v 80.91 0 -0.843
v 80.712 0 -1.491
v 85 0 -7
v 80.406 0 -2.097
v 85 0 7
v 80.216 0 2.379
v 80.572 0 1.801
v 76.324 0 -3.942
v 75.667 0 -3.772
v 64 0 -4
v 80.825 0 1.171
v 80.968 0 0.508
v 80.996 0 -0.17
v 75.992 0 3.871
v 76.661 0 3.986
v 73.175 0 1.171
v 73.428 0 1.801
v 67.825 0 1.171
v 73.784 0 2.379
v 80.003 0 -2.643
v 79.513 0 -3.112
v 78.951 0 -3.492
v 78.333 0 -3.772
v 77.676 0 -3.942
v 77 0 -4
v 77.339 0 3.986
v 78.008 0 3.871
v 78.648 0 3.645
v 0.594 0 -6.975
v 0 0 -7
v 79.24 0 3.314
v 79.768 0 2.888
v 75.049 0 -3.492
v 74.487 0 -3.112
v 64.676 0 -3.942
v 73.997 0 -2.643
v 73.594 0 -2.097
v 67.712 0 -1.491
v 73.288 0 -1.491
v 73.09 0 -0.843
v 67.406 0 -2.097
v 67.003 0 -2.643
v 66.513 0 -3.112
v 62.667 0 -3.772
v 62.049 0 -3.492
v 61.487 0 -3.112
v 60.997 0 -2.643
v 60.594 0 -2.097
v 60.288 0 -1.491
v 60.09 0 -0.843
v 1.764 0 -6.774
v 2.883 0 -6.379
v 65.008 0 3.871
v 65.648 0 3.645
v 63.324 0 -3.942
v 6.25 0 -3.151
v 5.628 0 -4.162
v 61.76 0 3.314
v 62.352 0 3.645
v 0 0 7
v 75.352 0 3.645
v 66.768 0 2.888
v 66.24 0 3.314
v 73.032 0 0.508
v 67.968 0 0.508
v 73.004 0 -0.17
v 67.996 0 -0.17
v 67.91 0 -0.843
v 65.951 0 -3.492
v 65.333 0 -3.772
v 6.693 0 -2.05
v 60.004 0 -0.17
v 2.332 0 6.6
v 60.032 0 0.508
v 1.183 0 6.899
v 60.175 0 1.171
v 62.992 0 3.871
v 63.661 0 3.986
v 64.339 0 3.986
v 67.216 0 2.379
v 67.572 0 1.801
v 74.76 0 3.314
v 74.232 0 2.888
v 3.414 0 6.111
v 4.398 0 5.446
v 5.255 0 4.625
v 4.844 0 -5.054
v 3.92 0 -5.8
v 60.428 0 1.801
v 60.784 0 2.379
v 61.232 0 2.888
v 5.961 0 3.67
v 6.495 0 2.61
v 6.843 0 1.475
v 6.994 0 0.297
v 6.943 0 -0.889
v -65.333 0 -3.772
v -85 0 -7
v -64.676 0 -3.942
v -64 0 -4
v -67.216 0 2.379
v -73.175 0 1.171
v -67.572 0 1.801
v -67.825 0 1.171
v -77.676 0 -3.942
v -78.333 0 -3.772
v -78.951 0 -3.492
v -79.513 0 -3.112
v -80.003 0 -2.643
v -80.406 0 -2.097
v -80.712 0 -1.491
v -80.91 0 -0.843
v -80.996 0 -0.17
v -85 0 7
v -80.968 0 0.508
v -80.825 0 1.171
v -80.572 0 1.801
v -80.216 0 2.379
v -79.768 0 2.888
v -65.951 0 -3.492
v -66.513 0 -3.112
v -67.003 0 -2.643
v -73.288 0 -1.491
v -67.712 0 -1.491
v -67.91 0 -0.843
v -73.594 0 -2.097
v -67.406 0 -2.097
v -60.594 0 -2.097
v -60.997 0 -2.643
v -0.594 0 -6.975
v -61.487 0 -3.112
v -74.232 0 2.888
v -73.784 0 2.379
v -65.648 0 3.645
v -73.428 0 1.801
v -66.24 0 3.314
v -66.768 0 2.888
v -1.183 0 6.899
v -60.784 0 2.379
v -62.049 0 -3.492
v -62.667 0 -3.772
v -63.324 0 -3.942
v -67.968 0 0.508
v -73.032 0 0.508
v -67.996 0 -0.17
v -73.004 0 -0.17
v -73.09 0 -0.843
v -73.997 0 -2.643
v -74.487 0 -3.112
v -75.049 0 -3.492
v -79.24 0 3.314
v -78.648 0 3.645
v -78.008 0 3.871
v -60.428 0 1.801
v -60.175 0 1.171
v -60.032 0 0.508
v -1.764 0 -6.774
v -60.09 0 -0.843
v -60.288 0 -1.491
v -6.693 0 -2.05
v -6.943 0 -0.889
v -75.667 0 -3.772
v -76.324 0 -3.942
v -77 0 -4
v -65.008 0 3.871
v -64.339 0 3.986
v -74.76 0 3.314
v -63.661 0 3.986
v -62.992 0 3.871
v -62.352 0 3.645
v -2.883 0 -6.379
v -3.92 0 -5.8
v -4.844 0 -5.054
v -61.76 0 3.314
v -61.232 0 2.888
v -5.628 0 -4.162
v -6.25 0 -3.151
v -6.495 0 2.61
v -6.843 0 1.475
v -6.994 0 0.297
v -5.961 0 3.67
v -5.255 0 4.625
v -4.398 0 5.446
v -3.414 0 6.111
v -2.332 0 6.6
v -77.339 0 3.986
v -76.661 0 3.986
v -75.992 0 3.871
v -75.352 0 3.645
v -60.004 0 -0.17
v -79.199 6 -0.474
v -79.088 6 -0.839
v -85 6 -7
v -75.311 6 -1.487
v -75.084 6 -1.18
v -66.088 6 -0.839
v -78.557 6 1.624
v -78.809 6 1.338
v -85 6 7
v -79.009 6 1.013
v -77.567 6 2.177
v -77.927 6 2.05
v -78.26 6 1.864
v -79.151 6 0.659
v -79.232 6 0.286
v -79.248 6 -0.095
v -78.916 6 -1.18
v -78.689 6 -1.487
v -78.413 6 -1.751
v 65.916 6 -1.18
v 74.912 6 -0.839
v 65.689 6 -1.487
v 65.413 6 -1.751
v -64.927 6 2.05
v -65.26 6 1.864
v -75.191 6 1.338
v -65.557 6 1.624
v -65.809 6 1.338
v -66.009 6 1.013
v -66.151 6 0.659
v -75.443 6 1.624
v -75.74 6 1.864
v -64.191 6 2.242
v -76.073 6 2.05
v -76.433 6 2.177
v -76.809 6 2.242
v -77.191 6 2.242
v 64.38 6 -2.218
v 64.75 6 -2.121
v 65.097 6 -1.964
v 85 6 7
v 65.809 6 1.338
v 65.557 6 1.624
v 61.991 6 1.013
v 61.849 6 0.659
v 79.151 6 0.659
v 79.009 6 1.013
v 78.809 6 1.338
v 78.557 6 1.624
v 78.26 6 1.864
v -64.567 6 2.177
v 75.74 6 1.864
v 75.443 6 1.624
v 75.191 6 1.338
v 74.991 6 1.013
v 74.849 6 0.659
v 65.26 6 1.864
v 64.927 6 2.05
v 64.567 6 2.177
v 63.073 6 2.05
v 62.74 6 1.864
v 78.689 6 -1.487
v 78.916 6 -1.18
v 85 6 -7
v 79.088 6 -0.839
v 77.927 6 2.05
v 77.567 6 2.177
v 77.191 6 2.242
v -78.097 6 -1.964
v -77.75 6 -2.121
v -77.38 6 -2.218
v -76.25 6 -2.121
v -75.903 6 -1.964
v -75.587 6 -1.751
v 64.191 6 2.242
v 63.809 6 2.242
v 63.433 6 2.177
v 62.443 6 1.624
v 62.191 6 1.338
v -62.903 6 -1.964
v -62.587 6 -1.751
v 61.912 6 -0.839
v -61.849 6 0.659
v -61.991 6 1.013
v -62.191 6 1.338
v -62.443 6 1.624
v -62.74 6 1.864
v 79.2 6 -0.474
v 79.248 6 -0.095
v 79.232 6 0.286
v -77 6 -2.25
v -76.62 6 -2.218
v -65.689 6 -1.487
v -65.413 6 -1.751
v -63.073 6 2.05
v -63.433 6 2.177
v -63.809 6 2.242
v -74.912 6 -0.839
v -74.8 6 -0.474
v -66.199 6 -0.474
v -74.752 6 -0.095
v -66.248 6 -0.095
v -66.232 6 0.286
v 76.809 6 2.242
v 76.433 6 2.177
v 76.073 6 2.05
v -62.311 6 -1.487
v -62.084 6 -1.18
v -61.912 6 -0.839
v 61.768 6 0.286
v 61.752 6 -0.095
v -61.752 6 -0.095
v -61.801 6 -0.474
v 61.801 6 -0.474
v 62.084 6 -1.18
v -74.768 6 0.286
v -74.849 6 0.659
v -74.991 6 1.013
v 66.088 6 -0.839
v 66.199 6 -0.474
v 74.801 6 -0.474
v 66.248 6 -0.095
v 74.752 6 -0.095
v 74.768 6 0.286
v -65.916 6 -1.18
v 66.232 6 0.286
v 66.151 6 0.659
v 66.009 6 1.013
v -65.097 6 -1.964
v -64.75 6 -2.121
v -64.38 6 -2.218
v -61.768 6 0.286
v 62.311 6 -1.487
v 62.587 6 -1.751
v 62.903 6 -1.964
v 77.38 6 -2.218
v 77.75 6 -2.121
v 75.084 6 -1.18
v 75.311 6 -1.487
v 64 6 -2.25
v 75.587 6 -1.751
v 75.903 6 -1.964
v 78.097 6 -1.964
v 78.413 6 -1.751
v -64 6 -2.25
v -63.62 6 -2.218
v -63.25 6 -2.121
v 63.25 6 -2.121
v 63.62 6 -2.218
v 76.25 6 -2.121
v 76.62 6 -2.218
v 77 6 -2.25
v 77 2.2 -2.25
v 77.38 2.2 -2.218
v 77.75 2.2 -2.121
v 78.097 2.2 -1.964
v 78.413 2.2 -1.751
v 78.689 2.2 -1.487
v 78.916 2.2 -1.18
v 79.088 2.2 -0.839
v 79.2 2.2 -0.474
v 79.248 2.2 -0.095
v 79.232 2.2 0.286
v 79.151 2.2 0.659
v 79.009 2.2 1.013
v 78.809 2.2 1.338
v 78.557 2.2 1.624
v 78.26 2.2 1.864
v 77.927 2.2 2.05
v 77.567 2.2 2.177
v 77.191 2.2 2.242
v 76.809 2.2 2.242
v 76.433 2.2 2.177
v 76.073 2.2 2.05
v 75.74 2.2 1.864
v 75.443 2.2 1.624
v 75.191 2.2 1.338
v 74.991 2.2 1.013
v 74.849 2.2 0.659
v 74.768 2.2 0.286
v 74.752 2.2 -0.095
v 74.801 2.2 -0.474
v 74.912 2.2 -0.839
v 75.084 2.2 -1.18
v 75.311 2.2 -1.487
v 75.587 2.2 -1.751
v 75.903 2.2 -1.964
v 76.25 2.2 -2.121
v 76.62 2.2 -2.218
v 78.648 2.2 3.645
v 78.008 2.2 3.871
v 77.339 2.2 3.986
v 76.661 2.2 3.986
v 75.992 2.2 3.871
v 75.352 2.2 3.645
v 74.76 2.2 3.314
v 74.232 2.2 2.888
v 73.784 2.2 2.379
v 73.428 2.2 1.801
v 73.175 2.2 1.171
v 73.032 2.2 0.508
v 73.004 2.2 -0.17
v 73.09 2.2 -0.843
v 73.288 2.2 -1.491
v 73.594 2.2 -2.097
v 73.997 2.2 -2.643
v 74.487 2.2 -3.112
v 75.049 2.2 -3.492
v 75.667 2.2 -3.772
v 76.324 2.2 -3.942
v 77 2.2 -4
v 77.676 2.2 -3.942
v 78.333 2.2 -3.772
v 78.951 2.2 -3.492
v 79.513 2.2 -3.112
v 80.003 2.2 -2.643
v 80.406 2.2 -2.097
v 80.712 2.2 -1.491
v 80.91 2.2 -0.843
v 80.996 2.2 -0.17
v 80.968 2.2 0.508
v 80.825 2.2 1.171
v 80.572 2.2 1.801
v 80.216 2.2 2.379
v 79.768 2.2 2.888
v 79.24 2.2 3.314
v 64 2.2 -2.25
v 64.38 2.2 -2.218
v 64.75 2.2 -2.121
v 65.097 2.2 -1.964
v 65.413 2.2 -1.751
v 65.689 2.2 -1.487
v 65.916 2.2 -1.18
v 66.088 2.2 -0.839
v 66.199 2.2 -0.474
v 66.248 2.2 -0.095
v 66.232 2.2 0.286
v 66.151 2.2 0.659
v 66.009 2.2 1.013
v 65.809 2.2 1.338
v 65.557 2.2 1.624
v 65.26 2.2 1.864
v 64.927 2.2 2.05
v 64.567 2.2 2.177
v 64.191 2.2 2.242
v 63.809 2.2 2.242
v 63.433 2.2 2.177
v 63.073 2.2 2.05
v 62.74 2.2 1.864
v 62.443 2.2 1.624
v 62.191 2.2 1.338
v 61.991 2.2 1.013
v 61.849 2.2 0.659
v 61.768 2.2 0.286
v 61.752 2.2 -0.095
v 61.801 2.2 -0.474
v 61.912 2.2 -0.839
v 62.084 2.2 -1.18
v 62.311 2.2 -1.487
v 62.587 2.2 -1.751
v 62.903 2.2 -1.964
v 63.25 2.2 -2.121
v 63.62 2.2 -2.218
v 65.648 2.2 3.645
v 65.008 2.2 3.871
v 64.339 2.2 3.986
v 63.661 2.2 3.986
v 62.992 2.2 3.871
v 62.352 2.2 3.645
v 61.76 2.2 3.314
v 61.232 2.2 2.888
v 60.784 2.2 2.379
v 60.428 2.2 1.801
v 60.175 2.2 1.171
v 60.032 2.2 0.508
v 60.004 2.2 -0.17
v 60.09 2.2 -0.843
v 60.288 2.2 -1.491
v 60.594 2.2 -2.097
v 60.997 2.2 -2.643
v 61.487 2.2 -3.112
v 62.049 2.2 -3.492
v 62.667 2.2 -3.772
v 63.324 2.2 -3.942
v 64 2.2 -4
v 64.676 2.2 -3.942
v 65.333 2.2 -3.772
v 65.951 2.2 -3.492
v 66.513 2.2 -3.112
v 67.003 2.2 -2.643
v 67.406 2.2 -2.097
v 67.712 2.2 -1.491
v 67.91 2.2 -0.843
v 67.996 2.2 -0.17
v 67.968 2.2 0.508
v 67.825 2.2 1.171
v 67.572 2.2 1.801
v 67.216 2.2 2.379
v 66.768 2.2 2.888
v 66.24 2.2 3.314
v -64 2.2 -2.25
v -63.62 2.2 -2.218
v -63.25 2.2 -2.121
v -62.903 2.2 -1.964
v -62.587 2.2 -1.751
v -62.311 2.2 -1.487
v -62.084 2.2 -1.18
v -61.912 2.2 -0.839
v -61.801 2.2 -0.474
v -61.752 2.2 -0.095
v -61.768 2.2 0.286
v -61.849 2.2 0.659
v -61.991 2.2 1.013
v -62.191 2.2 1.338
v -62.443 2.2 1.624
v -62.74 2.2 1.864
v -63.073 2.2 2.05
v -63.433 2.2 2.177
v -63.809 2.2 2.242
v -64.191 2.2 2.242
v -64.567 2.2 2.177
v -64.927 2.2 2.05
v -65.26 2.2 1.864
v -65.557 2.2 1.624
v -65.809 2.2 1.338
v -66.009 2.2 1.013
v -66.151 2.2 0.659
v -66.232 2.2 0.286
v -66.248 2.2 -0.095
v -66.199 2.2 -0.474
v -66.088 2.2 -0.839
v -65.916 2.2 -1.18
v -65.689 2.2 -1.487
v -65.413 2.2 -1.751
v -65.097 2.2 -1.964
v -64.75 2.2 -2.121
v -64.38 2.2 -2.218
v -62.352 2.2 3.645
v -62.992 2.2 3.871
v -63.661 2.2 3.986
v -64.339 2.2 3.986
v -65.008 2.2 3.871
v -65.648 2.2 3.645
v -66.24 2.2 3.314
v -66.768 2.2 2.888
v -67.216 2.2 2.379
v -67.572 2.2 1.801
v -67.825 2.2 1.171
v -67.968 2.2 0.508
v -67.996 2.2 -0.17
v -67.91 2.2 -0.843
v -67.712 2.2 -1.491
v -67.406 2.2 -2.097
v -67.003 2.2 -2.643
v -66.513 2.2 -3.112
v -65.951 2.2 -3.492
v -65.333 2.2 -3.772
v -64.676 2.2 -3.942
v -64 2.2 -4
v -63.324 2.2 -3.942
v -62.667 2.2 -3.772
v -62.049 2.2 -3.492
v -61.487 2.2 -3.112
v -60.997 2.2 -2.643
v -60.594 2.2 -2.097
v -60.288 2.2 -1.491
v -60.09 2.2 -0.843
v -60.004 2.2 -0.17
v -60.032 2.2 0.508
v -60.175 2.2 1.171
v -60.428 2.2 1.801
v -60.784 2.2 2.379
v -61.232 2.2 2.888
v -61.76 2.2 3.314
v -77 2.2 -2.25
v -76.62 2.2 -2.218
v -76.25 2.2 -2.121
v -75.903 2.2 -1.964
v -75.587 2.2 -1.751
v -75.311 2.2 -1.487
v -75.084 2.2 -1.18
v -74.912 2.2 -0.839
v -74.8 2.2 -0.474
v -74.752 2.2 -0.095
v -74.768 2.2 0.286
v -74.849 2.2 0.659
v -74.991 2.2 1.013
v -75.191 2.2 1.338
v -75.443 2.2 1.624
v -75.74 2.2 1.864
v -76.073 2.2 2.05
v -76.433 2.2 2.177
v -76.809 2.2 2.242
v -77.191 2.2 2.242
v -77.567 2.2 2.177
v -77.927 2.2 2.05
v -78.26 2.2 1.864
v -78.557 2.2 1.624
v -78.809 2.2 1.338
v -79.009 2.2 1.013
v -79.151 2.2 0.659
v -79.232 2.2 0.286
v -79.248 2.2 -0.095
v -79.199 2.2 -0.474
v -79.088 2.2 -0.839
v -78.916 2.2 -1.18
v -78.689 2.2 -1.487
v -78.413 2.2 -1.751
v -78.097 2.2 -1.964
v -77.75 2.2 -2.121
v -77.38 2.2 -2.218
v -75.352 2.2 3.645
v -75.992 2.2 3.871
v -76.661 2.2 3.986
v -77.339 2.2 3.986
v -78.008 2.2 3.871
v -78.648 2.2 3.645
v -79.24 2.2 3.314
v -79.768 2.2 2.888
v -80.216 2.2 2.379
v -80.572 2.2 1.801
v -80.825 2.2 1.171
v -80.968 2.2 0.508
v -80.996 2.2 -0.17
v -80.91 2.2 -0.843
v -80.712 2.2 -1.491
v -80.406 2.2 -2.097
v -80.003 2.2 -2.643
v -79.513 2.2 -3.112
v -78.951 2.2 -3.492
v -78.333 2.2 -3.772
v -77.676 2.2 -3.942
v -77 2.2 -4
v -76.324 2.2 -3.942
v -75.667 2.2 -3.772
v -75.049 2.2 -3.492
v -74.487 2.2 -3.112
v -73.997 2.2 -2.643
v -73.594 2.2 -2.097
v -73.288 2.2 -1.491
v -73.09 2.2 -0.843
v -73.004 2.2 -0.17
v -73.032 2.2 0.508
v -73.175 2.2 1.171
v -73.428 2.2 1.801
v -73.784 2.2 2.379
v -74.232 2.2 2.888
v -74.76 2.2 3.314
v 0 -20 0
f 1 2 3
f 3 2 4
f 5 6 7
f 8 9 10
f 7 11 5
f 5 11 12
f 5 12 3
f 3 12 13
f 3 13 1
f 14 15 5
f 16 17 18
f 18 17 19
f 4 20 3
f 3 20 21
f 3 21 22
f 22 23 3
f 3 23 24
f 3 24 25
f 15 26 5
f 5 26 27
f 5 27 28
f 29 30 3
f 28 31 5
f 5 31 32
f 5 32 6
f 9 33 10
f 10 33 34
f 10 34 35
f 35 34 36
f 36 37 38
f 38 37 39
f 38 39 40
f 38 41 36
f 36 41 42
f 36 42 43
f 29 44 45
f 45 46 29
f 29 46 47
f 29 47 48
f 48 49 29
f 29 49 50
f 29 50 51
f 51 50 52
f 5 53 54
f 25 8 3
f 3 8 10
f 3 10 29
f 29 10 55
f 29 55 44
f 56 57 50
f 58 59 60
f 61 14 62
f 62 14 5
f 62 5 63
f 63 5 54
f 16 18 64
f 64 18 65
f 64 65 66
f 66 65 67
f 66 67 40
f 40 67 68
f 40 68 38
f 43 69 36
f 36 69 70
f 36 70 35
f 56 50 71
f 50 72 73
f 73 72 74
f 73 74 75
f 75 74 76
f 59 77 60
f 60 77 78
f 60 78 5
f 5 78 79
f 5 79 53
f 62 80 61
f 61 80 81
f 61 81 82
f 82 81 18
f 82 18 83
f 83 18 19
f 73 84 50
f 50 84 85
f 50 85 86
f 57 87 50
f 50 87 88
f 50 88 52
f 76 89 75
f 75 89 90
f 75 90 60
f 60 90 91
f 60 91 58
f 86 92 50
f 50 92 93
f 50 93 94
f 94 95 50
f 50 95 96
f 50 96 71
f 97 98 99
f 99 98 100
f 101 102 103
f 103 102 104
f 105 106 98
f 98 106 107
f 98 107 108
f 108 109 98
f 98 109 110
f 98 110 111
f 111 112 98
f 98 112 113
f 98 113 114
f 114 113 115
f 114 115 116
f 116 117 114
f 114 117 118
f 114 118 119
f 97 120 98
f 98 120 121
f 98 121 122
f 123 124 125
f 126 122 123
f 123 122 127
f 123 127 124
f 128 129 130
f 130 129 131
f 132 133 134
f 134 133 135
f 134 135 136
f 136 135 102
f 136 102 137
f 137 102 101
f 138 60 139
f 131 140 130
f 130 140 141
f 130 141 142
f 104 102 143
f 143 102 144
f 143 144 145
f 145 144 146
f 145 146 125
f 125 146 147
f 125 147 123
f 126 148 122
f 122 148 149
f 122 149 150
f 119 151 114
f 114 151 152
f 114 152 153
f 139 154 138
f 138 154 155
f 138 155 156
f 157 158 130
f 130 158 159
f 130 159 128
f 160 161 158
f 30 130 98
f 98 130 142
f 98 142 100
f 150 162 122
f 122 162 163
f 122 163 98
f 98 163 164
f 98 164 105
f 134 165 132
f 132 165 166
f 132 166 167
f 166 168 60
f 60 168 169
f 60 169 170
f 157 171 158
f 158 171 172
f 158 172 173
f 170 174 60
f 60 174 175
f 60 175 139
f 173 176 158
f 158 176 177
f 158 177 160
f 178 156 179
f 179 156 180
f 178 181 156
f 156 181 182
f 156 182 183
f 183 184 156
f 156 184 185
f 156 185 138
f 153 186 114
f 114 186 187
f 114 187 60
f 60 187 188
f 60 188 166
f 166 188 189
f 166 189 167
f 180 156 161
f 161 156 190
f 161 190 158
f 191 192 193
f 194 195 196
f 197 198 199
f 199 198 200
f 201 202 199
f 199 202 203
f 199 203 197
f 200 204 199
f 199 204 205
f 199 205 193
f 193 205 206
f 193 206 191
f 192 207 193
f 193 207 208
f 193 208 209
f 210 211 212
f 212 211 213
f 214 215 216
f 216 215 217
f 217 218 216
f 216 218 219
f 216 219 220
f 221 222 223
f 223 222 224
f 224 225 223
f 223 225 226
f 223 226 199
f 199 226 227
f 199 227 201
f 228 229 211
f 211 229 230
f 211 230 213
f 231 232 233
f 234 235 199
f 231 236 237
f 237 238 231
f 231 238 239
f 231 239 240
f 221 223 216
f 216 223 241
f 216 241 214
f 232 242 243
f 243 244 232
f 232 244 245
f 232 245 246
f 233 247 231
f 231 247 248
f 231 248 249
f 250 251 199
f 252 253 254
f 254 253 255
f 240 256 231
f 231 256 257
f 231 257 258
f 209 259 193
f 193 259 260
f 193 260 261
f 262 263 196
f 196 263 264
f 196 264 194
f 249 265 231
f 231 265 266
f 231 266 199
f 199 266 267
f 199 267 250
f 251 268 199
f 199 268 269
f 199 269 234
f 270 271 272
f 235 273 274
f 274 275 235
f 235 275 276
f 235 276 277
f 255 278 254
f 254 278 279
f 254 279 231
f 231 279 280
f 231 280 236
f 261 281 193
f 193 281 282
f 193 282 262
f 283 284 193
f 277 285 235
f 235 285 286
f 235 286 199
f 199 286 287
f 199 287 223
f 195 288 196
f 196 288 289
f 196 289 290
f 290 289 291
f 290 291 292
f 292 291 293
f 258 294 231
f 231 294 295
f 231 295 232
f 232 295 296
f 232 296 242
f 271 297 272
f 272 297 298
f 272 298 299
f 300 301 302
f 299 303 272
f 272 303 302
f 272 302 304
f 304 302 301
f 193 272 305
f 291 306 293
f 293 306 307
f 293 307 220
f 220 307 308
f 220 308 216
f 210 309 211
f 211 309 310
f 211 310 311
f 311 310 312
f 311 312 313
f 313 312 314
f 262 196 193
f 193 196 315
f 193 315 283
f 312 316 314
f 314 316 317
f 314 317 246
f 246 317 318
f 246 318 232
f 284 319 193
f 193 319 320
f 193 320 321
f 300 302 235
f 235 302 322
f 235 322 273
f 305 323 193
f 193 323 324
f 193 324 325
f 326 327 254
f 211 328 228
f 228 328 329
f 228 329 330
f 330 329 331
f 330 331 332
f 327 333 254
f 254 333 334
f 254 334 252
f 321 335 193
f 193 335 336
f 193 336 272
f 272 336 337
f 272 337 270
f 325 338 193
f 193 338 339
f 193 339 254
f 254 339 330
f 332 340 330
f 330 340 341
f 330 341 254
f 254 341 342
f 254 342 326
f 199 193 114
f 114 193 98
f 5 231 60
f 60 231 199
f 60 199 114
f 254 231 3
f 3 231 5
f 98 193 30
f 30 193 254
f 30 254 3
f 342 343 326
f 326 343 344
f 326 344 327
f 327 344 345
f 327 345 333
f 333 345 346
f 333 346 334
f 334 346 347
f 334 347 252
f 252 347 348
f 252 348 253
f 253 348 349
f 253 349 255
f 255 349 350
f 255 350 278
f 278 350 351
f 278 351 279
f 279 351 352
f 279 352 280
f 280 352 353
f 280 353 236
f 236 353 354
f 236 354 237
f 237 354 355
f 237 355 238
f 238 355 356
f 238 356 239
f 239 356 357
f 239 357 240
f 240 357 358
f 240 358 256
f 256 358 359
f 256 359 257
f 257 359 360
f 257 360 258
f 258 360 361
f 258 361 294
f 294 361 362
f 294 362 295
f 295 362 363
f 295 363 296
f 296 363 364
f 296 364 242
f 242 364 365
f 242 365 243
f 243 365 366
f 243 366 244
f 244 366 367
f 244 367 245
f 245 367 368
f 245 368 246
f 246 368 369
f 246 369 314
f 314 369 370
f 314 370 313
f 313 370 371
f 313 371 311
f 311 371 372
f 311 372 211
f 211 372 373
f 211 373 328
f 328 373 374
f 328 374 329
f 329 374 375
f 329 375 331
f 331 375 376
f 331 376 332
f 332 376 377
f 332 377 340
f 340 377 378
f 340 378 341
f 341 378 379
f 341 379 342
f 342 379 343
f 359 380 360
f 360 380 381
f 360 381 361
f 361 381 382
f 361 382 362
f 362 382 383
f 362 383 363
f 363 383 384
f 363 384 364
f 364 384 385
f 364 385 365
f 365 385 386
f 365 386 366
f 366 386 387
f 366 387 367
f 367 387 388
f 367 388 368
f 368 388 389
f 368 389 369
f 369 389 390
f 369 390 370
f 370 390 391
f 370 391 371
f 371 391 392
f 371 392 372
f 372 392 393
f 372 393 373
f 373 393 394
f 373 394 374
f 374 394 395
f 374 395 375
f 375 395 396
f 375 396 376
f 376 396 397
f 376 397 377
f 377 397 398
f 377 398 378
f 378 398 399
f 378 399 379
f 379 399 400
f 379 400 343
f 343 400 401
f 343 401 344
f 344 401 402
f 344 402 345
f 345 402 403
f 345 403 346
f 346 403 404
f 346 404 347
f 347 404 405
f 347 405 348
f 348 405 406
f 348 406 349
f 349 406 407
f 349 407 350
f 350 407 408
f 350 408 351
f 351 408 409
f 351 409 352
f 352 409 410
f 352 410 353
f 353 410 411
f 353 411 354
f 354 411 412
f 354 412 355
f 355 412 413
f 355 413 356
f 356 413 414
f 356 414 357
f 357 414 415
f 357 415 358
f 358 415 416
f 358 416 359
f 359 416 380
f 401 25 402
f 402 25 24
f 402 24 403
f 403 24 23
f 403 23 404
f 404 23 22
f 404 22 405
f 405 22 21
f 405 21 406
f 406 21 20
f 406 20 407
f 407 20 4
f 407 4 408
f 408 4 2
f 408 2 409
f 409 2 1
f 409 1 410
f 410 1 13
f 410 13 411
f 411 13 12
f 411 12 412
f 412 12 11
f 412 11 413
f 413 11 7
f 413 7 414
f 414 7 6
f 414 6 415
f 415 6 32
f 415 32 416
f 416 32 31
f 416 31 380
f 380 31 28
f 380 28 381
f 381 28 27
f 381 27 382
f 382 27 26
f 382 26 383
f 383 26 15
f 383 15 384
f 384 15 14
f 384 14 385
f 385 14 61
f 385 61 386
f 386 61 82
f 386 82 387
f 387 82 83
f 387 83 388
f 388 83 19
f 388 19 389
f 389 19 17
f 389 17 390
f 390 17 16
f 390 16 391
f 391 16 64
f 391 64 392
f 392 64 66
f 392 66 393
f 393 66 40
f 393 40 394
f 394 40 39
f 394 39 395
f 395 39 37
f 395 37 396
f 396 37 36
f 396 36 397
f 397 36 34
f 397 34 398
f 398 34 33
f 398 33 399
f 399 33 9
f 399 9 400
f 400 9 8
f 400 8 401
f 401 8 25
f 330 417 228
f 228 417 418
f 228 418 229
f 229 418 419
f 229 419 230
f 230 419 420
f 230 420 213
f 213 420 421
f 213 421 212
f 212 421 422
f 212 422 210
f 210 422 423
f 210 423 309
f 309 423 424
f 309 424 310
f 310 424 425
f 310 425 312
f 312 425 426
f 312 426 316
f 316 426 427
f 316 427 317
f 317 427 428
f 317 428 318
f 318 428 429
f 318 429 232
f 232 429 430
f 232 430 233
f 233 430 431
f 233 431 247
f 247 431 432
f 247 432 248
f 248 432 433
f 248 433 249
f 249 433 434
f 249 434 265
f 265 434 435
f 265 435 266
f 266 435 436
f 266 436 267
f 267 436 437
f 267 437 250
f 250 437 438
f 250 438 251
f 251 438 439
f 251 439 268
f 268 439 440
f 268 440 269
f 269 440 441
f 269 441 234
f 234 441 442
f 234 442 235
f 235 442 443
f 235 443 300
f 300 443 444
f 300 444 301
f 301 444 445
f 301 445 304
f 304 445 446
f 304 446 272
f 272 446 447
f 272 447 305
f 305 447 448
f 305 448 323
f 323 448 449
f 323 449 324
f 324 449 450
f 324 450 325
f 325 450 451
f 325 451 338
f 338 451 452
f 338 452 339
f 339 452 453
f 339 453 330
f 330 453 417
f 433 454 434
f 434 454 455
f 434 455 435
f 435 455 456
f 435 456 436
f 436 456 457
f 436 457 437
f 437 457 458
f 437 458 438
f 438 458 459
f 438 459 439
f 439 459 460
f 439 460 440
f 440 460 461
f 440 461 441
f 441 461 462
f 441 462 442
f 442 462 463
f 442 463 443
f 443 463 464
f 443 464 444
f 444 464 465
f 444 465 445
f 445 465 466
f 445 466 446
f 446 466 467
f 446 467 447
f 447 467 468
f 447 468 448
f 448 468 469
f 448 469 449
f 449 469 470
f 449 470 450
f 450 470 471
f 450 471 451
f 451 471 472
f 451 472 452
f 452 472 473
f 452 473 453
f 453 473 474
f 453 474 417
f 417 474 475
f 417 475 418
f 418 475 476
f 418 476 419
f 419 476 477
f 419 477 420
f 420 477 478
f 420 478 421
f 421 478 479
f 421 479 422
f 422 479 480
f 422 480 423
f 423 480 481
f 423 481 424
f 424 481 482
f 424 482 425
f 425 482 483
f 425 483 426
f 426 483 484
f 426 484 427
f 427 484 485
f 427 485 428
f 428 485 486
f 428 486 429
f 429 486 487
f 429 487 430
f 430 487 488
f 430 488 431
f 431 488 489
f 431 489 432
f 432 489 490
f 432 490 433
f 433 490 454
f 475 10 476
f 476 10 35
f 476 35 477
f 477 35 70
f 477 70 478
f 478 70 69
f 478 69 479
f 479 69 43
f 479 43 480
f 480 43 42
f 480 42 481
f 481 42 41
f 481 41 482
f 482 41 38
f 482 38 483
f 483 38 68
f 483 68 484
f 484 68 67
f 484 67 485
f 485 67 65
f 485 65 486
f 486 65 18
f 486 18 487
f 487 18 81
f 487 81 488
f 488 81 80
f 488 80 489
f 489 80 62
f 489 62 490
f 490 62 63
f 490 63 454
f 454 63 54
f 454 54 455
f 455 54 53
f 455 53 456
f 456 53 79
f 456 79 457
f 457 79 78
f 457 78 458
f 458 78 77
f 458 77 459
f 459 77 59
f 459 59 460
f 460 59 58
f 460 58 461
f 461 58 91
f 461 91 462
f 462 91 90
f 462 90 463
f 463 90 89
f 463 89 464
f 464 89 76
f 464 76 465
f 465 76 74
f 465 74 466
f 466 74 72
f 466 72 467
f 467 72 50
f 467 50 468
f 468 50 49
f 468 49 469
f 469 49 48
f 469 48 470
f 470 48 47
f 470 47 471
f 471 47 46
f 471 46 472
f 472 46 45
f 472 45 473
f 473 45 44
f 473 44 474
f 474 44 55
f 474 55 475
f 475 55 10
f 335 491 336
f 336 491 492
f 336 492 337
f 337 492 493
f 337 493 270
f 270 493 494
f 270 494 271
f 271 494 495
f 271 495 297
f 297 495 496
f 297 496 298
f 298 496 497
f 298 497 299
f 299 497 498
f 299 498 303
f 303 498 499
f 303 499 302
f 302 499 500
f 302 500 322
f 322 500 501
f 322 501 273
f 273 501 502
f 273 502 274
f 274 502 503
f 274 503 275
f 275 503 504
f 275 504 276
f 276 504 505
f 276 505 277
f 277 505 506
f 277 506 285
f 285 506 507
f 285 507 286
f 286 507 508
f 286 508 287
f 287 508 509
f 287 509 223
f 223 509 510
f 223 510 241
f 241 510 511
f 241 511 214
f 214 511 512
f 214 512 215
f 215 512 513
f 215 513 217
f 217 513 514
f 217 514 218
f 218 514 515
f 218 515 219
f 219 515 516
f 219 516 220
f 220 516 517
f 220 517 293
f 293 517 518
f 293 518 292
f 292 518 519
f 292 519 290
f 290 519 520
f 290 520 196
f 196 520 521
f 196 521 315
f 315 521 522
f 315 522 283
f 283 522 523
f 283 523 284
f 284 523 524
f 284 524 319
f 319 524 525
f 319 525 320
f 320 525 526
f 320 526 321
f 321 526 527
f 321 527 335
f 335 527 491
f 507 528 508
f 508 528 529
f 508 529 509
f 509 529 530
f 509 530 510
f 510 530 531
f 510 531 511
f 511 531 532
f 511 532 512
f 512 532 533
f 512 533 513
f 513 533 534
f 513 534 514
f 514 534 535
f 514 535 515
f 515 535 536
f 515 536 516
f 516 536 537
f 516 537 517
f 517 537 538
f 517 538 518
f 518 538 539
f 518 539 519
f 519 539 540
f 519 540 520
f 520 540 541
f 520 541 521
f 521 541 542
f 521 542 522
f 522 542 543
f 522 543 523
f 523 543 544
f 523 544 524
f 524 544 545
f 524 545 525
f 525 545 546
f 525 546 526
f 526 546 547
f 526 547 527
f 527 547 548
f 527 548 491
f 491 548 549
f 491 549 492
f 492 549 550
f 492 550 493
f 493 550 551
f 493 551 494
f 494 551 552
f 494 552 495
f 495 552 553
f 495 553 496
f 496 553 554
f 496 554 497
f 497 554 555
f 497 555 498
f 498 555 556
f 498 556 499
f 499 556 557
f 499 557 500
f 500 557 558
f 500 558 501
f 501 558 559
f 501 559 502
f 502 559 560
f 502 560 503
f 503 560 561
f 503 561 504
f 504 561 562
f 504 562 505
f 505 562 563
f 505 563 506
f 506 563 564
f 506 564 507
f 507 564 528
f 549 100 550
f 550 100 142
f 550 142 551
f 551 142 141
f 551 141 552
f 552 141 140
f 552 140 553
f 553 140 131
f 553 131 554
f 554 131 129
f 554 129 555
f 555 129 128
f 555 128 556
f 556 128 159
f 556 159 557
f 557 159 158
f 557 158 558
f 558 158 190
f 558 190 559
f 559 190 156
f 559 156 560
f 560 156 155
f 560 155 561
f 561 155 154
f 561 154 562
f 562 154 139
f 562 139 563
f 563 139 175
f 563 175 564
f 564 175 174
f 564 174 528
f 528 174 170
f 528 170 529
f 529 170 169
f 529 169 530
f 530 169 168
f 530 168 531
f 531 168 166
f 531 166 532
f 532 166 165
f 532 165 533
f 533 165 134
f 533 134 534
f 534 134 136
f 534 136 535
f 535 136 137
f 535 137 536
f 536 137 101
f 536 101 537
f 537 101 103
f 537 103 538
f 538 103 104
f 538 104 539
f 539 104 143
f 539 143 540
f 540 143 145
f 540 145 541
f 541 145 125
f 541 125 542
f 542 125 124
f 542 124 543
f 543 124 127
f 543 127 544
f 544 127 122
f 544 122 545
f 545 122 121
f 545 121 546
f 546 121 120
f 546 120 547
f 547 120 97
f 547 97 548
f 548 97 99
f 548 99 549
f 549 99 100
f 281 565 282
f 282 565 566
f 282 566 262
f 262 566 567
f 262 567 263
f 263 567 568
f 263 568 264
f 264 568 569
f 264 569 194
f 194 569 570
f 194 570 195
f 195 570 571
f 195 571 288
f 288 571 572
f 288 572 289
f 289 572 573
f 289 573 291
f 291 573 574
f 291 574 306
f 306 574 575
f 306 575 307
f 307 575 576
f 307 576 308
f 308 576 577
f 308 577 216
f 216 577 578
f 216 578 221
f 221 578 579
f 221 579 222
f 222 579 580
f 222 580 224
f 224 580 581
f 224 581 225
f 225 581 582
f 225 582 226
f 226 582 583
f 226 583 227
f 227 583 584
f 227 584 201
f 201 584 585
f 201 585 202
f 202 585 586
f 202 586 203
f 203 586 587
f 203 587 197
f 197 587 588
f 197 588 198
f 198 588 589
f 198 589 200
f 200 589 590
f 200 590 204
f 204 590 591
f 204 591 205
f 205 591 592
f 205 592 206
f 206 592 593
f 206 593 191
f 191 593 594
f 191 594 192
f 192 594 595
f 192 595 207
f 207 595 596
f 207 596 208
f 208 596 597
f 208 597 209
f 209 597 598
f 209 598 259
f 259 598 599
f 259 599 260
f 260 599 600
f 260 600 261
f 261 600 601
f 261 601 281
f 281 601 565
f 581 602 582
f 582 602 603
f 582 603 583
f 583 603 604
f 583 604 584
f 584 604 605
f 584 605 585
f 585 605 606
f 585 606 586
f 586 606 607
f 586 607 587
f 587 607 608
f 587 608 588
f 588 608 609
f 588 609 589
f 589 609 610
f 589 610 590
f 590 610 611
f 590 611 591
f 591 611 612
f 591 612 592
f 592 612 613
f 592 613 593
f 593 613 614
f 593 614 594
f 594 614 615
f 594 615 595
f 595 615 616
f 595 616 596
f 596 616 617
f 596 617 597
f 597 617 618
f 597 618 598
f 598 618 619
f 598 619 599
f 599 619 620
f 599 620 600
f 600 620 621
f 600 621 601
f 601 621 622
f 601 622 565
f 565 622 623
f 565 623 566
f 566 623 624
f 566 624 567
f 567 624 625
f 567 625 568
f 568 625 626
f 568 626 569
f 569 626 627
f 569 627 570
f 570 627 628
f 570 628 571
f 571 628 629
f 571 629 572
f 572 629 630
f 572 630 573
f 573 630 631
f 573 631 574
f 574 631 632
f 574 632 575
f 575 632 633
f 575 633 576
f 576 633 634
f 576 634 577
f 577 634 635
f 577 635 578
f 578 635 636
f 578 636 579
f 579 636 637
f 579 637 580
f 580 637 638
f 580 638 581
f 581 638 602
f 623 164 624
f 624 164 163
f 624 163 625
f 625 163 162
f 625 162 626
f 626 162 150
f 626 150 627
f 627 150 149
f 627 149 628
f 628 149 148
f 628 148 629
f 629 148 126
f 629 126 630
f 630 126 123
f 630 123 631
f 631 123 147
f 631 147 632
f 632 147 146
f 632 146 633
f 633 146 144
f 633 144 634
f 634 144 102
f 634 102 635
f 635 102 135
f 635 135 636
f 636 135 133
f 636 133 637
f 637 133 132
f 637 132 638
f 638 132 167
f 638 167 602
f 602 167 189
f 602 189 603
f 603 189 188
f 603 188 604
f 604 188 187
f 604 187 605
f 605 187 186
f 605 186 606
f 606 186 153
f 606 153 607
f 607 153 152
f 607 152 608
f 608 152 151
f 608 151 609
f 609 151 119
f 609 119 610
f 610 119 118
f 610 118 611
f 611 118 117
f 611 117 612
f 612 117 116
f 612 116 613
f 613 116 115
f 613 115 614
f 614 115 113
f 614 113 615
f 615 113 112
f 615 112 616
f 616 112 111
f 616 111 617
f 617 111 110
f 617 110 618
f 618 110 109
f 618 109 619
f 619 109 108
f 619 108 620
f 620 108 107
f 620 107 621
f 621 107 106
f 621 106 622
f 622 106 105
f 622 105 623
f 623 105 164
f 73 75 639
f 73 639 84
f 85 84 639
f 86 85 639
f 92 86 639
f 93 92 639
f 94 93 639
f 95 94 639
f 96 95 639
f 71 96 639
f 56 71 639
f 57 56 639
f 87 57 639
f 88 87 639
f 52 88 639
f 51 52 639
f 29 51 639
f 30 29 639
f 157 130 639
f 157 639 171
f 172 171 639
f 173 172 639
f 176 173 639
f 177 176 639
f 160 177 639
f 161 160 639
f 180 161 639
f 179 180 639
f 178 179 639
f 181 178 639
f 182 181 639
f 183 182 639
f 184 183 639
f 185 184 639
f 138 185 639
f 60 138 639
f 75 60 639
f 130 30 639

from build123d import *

# Parameters (mm, degrees)
SKIZZE1_W                                           = 170
SKIZZE1_H                                           = 14
AUFSATZ_LINEAR_AUSTRAGEN1_DEPTH                     = 6
STIRNSENKUNG_F_R_M4_SENKSCHRAUBE_KOPF_B_D           = 4.5
STIRNSENKUNG_F_R_M4_SENKSCHRAUBE_KOPF_B_CBORE_D     = 8
STIRNSENKUNG_F_R_M4_SENKSCHRAUBE_KOPF_B_CBORE_DEPTH = 2.2


with BuildPart() as part:
    # Skizze1 → Aufsatz-Linear austragen1 (new body)
    with BuildSketch(Plane(origin=(0, 0, 0), x_dir=(1, 0, 0), z_dir=(0, 1, 0))):
        Rectangle(SKIZZE1_W, SKIZZE1_H)
    extrude(amount=AUFSATZ_LINEAR_AUSTRAGEN1_DEPTH)

    # Stirnsenkung für M4 Senkschraube (Kopf Button)1 (through all)
    with Locations(Plane(origin=(-77, 0, 0), x_dir=(0, 0, -1), z_dir=(0, -1, 0))):
        with Locations((0, 0), (0, 13), (0, 141), (0, 154)):
            CounterBoreHole(STIRNSENKUNG_F_R_M4_SENKSCHRAUBE_KOPF_B_D / 2, STIRNSENKUNG_F_R_M4_SENKSCHRAUBE_KOPF_B_CBORE_D / 2, STIRNSENKUNG_F_R_M4_SENKSCHRAUBE_KOPF_B_CBORE_DEPTH)

    # Skizze3 → Rotation1 (revolve)
    with BuildSketch(Plane.XY):
        Polygon((-7, 0), (0, -20), (0, 0), align=None)
    revolve(axis=Axis((0, 32.961151518, 0), (0, -1, 0)))


solid = part.part
